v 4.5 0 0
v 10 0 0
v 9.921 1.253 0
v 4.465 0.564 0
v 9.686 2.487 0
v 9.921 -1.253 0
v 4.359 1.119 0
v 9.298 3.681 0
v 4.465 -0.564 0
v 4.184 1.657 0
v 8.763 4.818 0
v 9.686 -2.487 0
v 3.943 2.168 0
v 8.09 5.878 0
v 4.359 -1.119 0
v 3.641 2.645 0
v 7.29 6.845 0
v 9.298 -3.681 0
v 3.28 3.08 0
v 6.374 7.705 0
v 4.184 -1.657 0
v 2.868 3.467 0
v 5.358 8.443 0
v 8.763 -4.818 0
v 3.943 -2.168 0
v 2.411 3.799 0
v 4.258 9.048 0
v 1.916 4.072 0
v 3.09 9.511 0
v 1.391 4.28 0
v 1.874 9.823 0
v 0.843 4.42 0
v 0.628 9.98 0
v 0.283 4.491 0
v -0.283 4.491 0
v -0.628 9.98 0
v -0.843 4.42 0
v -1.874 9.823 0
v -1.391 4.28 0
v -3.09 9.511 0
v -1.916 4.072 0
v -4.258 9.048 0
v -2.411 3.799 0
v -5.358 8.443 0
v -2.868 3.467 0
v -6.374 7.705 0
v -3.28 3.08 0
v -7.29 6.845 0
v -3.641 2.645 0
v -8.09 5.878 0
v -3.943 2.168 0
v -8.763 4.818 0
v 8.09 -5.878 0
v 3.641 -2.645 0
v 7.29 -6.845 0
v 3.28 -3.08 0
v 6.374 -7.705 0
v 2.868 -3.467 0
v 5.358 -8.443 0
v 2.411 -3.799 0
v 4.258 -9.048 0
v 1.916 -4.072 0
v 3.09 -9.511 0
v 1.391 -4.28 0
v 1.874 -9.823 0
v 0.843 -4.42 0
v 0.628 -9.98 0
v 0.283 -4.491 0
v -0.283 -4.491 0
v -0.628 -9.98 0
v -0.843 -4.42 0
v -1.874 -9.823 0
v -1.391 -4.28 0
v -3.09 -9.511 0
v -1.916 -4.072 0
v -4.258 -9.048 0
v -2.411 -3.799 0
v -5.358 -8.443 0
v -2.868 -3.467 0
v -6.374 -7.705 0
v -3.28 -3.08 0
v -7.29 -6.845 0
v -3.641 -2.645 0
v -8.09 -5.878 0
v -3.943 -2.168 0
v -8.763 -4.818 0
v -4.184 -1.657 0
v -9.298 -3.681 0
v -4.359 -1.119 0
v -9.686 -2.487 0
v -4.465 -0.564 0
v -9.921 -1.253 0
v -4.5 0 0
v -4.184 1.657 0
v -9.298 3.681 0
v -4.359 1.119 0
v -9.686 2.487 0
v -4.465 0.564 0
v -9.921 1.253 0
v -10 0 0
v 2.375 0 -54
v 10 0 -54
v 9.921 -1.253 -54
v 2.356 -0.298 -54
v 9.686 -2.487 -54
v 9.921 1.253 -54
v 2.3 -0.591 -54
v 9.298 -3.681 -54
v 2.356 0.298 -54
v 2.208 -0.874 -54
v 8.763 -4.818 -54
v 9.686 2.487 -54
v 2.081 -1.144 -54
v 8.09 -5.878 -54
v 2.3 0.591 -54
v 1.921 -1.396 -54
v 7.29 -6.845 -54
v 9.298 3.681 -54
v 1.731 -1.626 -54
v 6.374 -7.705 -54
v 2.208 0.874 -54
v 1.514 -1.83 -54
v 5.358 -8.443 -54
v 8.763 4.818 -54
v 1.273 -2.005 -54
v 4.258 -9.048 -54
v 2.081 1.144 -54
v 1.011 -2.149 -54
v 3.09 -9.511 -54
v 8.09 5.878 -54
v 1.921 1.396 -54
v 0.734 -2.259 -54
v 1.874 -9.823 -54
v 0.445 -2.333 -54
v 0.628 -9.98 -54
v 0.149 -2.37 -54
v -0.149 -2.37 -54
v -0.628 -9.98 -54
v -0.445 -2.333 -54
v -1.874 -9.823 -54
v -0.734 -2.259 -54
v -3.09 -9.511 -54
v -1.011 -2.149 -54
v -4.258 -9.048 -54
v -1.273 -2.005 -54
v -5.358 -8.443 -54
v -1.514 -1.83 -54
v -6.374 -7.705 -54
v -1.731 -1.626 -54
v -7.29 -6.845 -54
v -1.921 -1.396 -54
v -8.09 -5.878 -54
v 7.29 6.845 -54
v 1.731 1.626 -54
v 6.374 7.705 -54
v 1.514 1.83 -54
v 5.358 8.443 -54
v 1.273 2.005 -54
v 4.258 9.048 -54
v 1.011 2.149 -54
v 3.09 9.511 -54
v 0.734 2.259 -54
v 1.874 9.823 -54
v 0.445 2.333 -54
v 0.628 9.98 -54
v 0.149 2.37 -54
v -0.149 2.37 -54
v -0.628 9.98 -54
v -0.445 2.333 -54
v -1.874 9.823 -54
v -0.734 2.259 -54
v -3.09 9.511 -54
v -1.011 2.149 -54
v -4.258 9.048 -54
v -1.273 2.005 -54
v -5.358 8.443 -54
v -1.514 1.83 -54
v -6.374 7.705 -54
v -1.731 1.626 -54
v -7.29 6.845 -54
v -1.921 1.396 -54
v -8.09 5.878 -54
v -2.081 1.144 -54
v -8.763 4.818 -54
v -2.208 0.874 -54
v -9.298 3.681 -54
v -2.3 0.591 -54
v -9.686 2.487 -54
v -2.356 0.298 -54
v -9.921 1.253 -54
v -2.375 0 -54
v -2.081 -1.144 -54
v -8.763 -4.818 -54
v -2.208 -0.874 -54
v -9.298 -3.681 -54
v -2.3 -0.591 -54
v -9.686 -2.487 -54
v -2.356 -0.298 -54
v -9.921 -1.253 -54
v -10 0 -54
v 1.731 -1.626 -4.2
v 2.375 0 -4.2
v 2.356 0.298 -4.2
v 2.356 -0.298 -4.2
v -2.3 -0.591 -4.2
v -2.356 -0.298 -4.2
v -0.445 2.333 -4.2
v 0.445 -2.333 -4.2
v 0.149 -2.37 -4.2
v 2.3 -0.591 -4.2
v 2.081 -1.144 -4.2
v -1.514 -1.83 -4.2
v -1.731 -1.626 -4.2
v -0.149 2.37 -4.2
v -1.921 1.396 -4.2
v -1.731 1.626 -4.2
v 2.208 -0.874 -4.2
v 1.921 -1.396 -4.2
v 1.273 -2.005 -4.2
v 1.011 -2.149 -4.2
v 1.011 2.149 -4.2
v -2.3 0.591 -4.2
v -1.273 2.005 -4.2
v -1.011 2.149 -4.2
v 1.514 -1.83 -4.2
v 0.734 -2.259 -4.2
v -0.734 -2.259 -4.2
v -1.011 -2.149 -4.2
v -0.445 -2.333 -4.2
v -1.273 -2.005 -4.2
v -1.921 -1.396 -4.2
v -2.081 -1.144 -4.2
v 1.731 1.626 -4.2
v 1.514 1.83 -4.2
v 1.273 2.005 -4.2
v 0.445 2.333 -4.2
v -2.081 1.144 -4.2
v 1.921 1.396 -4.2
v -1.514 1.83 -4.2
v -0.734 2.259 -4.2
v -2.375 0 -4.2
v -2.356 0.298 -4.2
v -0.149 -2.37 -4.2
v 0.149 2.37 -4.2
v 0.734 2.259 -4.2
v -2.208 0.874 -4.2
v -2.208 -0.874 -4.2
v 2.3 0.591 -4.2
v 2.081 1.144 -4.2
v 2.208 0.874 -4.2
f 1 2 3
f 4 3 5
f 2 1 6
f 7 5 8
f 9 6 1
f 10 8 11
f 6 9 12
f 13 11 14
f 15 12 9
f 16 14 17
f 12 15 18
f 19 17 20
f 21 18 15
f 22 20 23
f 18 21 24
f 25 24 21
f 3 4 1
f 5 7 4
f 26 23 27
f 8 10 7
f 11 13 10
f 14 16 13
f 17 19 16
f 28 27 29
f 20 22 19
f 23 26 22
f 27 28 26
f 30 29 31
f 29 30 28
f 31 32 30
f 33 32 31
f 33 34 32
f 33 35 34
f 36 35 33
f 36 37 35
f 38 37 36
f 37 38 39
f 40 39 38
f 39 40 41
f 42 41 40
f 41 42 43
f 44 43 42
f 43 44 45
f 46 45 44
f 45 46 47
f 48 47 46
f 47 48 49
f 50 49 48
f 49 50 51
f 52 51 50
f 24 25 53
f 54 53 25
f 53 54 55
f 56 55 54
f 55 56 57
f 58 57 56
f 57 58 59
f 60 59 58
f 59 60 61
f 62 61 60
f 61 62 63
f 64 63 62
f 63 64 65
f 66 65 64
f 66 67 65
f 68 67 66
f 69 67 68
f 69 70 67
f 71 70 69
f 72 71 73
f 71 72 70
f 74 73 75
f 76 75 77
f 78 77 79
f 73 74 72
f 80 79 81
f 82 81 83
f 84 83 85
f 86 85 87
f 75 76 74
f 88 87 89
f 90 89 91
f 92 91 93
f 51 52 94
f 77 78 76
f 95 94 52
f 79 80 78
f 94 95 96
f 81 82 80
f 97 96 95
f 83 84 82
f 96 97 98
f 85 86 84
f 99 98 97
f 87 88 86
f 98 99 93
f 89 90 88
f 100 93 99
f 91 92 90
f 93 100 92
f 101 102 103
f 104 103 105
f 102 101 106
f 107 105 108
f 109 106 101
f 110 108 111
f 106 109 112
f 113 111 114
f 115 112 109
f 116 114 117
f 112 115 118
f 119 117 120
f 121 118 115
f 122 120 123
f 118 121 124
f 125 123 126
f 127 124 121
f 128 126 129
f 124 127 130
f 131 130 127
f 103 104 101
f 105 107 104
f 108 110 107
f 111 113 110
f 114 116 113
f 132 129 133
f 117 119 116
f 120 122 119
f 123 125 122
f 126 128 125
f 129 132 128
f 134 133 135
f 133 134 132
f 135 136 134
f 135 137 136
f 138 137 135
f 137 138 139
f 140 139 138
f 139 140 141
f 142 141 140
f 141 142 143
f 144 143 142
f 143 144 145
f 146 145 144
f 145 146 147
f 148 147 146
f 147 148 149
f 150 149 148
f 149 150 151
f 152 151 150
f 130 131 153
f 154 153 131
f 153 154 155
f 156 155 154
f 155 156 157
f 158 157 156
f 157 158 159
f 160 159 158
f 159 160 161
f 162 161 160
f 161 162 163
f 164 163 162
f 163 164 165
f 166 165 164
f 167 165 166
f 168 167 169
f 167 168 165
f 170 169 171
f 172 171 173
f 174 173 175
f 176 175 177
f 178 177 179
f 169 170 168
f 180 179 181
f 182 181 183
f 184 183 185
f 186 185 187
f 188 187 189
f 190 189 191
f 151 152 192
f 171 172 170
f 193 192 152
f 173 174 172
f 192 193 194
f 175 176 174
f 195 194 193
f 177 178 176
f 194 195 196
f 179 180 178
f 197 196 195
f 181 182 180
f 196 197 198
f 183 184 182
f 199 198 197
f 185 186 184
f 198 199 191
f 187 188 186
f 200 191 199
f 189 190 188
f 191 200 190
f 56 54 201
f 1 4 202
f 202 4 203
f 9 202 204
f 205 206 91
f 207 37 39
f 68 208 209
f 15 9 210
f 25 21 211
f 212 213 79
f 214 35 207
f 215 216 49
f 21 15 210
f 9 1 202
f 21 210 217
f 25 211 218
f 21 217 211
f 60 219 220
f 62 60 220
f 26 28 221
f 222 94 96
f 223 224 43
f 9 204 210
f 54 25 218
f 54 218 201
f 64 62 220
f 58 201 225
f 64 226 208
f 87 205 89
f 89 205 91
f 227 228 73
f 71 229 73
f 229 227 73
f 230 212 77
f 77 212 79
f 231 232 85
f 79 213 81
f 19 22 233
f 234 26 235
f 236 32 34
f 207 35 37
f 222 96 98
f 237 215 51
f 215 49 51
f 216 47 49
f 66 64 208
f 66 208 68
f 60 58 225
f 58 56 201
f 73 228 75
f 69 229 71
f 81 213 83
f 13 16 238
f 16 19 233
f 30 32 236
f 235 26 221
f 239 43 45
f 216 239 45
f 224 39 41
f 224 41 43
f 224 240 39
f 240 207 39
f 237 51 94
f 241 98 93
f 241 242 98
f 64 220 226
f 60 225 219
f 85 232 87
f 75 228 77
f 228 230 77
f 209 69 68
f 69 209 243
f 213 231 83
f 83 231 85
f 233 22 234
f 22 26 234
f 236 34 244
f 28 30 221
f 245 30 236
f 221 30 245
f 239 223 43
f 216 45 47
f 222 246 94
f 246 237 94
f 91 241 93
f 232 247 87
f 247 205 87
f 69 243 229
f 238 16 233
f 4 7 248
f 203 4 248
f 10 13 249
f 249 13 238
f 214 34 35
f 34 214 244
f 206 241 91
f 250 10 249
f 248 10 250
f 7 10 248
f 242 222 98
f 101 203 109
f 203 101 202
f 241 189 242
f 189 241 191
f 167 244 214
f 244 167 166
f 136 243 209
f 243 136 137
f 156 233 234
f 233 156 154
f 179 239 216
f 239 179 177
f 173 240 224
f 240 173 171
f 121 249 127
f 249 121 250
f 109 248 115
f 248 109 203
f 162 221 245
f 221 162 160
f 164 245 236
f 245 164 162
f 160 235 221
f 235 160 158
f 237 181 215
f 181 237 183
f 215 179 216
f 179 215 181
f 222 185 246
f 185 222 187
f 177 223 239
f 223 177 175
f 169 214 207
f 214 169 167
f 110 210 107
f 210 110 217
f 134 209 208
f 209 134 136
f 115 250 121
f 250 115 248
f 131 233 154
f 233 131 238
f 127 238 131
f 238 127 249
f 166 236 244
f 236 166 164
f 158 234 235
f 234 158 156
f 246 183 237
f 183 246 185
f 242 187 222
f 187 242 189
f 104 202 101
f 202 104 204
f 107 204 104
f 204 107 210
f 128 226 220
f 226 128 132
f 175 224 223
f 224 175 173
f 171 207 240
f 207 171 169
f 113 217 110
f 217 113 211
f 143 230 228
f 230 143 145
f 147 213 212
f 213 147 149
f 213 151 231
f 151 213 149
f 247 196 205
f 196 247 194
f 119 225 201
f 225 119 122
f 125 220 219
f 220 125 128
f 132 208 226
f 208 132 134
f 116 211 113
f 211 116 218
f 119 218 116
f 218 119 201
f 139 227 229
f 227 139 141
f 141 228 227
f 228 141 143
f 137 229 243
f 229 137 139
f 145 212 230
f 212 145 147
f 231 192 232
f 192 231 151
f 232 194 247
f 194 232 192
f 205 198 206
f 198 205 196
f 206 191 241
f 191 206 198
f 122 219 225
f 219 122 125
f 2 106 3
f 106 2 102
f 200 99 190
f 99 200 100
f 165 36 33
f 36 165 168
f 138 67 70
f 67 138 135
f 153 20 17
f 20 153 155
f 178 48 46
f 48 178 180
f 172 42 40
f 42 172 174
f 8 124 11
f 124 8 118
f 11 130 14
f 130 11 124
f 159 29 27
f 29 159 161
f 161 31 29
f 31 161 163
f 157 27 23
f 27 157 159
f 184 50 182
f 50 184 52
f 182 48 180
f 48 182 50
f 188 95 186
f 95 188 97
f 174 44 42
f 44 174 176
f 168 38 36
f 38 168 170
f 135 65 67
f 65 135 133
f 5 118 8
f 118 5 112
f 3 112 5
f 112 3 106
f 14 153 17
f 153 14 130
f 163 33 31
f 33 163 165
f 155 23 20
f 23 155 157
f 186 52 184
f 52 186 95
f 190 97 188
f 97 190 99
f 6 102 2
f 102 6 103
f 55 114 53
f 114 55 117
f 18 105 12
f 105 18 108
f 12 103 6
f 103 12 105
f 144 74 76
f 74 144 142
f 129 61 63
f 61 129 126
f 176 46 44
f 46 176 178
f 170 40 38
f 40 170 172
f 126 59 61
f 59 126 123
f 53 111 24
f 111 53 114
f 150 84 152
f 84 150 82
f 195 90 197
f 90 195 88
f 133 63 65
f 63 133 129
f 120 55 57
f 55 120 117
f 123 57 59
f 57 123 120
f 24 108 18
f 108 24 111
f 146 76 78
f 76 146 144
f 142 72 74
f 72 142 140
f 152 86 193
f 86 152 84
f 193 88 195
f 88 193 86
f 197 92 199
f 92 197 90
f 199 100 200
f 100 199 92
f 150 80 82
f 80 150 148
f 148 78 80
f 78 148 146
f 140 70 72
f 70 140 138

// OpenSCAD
$fn = 50;


difference() {
	union() {
		translate(v = [0, 0, -54.0000000000]) {
			cylinder(h = 54, r = 10.0000000000);
		}
		cylinder(h = 0, r = 19.0000000000);
	}
	union() {
		translate(v = [0, 0, 0]) {
			rotate(a = [0, 0, 0]) {
				difference() {
					union() {
						#translate(v = [0, 0, -54.0000000000]) {
							cylinder(h = 54, r = 2.2500000000);
						}
						#translate(v = [0, 0, -4.2000000000]) {
							cylinder(h = 4.2000000000, r = 10.0000000000, r1 = 2.3750000000, r2 = 4.5000000000);
						}
						#translate(v = [0, 0, -54.0000000000]) {
							cylinder(h = 54, r = 2.3750000000);
						}
						#translate(v = [0, 0, -54.0000000000]) {
							cylinder(h = 54, r = 2.2500000000);
						}
					}
					union();
				}
			}
		}
	}
}
